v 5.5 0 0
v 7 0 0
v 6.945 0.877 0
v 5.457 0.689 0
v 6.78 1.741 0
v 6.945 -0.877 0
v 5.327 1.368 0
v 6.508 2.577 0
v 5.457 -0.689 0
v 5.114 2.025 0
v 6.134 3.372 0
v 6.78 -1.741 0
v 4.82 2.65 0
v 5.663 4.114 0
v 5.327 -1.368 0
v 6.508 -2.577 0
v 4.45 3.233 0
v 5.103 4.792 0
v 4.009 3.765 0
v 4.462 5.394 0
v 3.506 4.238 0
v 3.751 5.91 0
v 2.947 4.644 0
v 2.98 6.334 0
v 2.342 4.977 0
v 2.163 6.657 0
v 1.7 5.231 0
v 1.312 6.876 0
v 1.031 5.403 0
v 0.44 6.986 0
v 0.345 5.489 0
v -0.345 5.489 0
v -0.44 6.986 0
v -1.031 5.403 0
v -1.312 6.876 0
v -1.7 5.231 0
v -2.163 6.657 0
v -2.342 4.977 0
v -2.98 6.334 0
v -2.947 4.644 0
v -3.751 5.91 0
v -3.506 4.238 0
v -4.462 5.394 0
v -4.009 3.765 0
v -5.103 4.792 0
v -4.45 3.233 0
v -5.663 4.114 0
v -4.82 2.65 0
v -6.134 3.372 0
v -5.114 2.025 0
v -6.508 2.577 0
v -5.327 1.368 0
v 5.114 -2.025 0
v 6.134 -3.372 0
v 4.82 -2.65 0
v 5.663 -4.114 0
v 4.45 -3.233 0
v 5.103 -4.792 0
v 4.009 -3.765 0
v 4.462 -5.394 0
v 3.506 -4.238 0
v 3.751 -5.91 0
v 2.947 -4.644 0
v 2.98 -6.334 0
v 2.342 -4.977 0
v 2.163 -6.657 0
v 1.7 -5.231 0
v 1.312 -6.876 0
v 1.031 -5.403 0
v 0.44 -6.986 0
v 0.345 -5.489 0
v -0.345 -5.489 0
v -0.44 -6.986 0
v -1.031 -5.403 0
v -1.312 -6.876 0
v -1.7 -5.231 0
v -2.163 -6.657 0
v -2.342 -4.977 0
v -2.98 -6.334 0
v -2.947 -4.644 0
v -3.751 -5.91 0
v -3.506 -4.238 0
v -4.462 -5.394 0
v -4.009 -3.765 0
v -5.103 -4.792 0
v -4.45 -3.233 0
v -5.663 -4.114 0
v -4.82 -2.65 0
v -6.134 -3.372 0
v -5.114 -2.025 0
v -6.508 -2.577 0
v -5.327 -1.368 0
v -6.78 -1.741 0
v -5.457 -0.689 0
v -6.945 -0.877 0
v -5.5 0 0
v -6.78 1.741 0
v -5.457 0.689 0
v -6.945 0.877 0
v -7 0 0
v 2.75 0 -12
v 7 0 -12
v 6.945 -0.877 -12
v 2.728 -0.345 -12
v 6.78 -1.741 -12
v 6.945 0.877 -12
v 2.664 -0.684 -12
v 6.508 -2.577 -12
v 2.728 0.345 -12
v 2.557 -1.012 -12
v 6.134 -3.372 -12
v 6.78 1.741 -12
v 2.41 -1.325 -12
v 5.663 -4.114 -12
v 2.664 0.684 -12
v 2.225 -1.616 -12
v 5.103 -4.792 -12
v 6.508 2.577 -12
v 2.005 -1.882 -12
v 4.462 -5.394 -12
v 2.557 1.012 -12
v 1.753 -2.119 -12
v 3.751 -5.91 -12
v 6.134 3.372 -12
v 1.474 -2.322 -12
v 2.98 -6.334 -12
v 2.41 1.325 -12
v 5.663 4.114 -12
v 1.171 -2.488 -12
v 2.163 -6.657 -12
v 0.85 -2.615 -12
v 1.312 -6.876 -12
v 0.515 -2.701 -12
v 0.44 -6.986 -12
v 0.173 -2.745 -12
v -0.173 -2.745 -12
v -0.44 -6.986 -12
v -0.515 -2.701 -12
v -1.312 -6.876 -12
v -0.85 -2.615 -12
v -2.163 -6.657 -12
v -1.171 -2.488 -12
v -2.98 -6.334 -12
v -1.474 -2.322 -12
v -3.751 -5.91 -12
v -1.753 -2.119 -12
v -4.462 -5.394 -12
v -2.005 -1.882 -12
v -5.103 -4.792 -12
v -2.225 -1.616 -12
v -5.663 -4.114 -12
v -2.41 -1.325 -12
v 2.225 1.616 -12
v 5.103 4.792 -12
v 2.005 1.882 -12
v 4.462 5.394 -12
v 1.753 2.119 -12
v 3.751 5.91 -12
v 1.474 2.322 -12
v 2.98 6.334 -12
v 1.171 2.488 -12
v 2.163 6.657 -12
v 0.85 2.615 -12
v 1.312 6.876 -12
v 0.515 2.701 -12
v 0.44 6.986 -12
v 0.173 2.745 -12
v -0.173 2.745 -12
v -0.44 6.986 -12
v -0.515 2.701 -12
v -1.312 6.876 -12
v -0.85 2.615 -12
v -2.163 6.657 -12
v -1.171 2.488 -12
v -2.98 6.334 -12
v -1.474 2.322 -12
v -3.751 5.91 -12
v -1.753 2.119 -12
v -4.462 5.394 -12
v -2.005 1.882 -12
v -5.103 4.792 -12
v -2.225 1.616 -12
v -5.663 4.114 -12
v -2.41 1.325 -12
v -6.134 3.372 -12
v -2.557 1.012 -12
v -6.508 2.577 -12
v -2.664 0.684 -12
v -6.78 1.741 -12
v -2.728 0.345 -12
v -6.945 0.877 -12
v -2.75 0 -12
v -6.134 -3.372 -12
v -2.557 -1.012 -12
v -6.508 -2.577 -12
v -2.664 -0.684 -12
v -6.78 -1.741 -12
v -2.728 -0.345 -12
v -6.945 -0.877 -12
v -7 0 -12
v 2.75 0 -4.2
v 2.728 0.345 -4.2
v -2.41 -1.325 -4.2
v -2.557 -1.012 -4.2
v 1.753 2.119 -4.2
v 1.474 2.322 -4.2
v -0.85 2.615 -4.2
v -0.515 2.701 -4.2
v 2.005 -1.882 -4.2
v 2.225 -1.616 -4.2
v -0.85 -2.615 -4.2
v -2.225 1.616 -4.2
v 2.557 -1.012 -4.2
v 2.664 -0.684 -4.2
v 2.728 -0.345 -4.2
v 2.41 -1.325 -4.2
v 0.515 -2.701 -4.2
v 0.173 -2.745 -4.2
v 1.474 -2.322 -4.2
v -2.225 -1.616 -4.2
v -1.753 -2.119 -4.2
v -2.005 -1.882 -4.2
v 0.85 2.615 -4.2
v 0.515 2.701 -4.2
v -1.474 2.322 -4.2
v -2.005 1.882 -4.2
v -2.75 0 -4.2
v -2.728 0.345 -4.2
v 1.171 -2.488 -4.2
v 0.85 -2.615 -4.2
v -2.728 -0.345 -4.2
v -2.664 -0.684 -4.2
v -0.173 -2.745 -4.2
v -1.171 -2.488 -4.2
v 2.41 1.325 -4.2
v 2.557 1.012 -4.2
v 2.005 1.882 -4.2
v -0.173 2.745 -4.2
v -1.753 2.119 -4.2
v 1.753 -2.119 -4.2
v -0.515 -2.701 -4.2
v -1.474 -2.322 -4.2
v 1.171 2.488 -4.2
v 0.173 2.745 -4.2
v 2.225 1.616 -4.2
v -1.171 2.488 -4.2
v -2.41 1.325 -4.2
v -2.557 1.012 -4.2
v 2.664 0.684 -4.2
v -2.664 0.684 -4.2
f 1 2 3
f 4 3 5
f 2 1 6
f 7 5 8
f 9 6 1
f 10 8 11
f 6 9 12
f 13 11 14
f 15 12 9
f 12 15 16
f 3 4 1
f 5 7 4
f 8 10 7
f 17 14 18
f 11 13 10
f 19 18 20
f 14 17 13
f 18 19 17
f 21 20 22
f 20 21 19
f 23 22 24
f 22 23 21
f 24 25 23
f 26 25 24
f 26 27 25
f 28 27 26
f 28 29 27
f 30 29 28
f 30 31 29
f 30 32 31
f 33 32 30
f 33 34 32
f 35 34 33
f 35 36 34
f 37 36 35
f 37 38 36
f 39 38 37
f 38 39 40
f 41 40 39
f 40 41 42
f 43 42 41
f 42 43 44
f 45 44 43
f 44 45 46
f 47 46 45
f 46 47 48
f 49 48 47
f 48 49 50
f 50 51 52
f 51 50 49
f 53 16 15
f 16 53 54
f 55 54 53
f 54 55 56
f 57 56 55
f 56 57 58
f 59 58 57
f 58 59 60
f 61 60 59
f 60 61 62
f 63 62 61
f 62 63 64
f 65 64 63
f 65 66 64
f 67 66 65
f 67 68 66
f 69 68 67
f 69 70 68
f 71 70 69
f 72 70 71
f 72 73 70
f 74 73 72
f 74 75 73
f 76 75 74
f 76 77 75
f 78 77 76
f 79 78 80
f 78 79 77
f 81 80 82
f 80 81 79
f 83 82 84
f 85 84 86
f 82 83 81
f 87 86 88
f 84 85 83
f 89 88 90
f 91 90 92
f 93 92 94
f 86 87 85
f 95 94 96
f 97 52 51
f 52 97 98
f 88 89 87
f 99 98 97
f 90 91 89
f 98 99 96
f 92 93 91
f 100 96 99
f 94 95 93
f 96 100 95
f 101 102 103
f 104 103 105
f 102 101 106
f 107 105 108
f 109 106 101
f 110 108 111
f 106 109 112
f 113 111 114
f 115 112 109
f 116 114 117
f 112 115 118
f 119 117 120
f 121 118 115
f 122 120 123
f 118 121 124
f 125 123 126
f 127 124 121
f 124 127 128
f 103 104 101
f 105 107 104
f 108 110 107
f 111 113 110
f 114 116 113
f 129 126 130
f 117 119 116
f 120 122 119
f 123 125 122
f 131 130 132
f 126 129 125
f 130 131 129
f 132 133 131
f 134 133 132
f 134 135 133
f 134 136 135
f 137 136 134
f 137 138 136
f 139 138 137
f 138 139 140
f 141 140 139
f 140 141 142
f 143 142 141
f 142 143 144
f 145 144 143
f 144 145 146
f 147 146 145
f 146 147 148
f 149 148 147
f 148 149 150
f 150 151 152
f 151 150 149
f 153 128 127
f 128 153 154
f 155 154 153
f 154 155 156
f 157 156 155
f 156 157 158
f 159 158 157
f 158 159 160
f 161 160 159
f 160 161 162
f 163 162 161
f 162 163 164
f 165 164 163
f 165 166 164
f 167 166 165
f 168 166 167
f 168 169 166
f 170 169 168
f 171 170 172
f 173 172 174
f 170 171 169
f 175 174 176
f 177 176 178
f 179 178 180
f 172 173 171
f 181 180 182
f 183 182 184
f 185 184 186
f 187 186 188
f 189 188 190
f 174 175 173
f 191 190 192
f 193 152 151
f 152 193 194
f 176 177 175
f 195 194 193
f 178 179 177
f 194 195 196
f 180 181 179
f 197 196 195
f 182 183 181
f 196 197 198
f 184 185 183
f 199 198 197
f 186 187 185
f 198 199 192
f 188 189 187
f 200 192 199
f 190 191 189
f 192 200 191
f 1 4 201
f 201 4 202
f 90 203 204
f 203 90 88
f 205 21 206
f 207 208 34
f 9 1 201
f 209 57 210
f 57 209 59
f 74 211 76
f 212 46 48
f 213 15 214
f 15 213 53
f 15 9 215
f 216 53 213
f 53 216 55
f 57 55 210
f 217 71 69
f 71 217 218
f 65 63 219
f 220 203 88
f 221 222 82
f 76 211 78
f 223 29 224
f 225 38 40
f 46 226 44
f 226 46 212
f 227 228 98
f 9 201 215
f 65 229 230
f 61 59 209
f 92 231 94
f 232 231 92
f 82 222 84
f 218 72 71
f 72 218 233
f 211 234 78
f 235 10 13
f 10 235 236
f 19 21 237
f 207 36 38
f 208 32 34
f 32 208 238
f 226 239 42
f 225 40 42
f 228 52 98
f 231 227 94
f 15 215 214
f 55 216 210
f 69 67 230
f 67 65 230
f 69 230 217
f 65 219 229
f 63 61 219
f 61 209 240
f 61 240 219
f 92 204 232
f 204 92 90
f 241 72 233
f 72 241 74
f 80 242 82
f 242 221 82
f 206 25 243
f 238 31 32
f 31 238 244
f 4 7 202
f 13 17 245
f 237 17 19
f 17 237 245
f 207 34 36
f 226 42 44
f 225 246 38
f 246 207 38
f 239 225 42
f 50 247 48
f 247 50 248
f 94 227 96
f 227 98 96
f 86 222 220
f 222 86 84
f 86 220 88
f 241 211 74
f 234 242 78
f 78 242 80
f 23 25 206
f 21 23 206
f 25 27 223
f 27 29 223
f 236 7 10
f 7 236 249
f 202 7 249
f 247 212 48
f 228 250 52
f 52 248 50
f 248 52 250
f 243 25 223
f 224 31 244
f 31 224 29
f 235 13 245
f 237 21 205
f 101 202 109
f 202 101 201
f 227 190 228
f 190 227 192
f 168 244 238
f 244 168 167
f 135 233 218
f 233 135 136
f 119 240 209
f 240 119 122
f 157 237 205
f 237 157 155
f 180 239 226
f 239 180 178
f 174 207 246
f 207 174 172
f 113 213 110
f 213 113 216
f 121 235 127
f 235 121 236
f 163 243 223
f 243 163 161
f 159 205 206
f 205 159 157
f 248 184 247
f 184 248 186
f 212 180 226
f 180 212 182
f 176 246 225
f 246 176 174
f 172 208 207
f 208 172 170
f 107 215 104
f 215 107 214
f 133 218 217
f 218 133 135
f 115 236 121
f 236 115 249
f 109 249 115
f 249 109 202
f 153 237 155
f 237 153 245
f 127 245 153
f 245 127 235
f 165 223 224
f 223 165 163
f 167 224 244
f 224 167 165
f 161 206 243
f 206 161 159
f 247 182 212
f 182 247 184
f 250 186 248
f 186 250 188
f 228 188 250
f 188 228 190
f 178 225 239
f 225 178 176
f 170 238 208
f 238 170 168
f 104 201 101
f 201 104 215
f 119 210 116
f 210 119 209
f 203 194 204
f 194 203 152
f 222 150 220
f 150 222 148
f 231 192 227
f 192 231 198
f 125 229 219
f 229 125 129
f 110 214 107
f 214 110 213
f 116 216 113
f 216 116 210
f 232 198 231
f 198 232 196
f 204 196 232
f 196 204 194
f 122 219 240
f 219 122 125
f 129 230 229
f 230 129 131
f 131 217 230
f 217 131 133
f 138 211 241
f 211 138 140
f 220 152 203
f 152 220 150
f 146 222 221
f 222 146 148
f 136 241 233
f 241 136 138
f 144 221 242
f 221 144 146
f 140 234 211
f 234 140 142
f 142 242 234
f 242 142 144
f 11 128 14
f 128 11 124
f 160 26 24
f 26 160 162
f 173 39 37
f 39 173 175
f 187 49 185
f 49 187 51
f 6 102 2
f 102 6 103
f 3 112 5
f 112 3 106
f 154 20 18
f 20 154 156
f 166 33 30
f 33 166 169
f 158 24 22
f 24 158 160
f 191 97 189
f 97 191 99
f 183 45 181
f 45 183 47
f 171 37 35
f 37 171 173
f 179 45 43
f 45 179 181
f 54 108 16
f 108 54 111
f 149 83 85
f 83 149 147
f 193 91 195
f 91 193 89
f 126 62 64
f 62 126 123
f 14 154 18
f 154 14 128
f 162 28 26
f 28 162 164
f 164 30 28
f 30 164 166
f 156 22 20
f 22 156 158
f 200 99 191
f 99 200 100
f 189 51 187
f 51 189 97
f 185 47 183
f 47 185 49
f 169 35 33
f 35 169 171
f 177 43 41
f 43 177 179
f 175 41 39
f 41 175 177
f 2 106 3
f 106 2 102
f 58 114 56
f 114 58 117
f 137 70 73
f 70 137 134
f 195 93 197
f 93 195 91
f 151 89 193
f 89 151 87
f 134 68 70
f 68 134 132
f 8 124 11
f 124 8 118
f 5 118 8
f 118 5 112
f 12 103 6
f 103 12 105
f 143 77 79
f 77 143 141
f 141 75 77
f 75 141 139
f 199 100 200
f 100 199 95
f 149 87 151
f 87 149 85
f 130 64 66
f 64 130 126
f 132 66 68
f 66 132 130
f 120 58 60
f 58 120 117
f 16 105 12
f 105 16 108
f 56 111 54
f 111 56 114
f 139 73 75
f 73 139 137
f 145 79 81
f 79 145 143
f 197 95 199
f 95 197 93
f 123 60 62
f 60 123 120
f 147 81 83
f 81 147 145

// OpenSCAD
$fn = 50;


difference() {
	union() {
		translate(v = [0, 0, -12.0000000000]) {
			cylinder(h = 12, r = 7.0000000000);
		}
		cylinder(h = 0, r = 13.0000000000);
	}
	union() {
		translate(v = [0, 0, 0]) {
			rotate(a = [0, 0, 0]) {
				difference() {
					union() {
						#translate(v = [0, 0, -12.0000000000]) {
							cylinder(h = 12, r = 2.2500000000);
						}
						#translate(v = [0, 0, -4.2000000000]) {
							cylinder(h = 4.2000000000, r = 7.0000000000, r1 = 2.7500000000, r2 = 5.5000000000);
						}
						#translate(v = [0, 0, -12.0000000000]) {
							cylinder(h = 12, r = 2.7500000000);
						}
						#translate(v = [0, 0, -12.0000000000]) {
							cylinder(h = 12, r = 2.2500000000);
						}
					}
					union();
				}
			}
		}
	}
}
